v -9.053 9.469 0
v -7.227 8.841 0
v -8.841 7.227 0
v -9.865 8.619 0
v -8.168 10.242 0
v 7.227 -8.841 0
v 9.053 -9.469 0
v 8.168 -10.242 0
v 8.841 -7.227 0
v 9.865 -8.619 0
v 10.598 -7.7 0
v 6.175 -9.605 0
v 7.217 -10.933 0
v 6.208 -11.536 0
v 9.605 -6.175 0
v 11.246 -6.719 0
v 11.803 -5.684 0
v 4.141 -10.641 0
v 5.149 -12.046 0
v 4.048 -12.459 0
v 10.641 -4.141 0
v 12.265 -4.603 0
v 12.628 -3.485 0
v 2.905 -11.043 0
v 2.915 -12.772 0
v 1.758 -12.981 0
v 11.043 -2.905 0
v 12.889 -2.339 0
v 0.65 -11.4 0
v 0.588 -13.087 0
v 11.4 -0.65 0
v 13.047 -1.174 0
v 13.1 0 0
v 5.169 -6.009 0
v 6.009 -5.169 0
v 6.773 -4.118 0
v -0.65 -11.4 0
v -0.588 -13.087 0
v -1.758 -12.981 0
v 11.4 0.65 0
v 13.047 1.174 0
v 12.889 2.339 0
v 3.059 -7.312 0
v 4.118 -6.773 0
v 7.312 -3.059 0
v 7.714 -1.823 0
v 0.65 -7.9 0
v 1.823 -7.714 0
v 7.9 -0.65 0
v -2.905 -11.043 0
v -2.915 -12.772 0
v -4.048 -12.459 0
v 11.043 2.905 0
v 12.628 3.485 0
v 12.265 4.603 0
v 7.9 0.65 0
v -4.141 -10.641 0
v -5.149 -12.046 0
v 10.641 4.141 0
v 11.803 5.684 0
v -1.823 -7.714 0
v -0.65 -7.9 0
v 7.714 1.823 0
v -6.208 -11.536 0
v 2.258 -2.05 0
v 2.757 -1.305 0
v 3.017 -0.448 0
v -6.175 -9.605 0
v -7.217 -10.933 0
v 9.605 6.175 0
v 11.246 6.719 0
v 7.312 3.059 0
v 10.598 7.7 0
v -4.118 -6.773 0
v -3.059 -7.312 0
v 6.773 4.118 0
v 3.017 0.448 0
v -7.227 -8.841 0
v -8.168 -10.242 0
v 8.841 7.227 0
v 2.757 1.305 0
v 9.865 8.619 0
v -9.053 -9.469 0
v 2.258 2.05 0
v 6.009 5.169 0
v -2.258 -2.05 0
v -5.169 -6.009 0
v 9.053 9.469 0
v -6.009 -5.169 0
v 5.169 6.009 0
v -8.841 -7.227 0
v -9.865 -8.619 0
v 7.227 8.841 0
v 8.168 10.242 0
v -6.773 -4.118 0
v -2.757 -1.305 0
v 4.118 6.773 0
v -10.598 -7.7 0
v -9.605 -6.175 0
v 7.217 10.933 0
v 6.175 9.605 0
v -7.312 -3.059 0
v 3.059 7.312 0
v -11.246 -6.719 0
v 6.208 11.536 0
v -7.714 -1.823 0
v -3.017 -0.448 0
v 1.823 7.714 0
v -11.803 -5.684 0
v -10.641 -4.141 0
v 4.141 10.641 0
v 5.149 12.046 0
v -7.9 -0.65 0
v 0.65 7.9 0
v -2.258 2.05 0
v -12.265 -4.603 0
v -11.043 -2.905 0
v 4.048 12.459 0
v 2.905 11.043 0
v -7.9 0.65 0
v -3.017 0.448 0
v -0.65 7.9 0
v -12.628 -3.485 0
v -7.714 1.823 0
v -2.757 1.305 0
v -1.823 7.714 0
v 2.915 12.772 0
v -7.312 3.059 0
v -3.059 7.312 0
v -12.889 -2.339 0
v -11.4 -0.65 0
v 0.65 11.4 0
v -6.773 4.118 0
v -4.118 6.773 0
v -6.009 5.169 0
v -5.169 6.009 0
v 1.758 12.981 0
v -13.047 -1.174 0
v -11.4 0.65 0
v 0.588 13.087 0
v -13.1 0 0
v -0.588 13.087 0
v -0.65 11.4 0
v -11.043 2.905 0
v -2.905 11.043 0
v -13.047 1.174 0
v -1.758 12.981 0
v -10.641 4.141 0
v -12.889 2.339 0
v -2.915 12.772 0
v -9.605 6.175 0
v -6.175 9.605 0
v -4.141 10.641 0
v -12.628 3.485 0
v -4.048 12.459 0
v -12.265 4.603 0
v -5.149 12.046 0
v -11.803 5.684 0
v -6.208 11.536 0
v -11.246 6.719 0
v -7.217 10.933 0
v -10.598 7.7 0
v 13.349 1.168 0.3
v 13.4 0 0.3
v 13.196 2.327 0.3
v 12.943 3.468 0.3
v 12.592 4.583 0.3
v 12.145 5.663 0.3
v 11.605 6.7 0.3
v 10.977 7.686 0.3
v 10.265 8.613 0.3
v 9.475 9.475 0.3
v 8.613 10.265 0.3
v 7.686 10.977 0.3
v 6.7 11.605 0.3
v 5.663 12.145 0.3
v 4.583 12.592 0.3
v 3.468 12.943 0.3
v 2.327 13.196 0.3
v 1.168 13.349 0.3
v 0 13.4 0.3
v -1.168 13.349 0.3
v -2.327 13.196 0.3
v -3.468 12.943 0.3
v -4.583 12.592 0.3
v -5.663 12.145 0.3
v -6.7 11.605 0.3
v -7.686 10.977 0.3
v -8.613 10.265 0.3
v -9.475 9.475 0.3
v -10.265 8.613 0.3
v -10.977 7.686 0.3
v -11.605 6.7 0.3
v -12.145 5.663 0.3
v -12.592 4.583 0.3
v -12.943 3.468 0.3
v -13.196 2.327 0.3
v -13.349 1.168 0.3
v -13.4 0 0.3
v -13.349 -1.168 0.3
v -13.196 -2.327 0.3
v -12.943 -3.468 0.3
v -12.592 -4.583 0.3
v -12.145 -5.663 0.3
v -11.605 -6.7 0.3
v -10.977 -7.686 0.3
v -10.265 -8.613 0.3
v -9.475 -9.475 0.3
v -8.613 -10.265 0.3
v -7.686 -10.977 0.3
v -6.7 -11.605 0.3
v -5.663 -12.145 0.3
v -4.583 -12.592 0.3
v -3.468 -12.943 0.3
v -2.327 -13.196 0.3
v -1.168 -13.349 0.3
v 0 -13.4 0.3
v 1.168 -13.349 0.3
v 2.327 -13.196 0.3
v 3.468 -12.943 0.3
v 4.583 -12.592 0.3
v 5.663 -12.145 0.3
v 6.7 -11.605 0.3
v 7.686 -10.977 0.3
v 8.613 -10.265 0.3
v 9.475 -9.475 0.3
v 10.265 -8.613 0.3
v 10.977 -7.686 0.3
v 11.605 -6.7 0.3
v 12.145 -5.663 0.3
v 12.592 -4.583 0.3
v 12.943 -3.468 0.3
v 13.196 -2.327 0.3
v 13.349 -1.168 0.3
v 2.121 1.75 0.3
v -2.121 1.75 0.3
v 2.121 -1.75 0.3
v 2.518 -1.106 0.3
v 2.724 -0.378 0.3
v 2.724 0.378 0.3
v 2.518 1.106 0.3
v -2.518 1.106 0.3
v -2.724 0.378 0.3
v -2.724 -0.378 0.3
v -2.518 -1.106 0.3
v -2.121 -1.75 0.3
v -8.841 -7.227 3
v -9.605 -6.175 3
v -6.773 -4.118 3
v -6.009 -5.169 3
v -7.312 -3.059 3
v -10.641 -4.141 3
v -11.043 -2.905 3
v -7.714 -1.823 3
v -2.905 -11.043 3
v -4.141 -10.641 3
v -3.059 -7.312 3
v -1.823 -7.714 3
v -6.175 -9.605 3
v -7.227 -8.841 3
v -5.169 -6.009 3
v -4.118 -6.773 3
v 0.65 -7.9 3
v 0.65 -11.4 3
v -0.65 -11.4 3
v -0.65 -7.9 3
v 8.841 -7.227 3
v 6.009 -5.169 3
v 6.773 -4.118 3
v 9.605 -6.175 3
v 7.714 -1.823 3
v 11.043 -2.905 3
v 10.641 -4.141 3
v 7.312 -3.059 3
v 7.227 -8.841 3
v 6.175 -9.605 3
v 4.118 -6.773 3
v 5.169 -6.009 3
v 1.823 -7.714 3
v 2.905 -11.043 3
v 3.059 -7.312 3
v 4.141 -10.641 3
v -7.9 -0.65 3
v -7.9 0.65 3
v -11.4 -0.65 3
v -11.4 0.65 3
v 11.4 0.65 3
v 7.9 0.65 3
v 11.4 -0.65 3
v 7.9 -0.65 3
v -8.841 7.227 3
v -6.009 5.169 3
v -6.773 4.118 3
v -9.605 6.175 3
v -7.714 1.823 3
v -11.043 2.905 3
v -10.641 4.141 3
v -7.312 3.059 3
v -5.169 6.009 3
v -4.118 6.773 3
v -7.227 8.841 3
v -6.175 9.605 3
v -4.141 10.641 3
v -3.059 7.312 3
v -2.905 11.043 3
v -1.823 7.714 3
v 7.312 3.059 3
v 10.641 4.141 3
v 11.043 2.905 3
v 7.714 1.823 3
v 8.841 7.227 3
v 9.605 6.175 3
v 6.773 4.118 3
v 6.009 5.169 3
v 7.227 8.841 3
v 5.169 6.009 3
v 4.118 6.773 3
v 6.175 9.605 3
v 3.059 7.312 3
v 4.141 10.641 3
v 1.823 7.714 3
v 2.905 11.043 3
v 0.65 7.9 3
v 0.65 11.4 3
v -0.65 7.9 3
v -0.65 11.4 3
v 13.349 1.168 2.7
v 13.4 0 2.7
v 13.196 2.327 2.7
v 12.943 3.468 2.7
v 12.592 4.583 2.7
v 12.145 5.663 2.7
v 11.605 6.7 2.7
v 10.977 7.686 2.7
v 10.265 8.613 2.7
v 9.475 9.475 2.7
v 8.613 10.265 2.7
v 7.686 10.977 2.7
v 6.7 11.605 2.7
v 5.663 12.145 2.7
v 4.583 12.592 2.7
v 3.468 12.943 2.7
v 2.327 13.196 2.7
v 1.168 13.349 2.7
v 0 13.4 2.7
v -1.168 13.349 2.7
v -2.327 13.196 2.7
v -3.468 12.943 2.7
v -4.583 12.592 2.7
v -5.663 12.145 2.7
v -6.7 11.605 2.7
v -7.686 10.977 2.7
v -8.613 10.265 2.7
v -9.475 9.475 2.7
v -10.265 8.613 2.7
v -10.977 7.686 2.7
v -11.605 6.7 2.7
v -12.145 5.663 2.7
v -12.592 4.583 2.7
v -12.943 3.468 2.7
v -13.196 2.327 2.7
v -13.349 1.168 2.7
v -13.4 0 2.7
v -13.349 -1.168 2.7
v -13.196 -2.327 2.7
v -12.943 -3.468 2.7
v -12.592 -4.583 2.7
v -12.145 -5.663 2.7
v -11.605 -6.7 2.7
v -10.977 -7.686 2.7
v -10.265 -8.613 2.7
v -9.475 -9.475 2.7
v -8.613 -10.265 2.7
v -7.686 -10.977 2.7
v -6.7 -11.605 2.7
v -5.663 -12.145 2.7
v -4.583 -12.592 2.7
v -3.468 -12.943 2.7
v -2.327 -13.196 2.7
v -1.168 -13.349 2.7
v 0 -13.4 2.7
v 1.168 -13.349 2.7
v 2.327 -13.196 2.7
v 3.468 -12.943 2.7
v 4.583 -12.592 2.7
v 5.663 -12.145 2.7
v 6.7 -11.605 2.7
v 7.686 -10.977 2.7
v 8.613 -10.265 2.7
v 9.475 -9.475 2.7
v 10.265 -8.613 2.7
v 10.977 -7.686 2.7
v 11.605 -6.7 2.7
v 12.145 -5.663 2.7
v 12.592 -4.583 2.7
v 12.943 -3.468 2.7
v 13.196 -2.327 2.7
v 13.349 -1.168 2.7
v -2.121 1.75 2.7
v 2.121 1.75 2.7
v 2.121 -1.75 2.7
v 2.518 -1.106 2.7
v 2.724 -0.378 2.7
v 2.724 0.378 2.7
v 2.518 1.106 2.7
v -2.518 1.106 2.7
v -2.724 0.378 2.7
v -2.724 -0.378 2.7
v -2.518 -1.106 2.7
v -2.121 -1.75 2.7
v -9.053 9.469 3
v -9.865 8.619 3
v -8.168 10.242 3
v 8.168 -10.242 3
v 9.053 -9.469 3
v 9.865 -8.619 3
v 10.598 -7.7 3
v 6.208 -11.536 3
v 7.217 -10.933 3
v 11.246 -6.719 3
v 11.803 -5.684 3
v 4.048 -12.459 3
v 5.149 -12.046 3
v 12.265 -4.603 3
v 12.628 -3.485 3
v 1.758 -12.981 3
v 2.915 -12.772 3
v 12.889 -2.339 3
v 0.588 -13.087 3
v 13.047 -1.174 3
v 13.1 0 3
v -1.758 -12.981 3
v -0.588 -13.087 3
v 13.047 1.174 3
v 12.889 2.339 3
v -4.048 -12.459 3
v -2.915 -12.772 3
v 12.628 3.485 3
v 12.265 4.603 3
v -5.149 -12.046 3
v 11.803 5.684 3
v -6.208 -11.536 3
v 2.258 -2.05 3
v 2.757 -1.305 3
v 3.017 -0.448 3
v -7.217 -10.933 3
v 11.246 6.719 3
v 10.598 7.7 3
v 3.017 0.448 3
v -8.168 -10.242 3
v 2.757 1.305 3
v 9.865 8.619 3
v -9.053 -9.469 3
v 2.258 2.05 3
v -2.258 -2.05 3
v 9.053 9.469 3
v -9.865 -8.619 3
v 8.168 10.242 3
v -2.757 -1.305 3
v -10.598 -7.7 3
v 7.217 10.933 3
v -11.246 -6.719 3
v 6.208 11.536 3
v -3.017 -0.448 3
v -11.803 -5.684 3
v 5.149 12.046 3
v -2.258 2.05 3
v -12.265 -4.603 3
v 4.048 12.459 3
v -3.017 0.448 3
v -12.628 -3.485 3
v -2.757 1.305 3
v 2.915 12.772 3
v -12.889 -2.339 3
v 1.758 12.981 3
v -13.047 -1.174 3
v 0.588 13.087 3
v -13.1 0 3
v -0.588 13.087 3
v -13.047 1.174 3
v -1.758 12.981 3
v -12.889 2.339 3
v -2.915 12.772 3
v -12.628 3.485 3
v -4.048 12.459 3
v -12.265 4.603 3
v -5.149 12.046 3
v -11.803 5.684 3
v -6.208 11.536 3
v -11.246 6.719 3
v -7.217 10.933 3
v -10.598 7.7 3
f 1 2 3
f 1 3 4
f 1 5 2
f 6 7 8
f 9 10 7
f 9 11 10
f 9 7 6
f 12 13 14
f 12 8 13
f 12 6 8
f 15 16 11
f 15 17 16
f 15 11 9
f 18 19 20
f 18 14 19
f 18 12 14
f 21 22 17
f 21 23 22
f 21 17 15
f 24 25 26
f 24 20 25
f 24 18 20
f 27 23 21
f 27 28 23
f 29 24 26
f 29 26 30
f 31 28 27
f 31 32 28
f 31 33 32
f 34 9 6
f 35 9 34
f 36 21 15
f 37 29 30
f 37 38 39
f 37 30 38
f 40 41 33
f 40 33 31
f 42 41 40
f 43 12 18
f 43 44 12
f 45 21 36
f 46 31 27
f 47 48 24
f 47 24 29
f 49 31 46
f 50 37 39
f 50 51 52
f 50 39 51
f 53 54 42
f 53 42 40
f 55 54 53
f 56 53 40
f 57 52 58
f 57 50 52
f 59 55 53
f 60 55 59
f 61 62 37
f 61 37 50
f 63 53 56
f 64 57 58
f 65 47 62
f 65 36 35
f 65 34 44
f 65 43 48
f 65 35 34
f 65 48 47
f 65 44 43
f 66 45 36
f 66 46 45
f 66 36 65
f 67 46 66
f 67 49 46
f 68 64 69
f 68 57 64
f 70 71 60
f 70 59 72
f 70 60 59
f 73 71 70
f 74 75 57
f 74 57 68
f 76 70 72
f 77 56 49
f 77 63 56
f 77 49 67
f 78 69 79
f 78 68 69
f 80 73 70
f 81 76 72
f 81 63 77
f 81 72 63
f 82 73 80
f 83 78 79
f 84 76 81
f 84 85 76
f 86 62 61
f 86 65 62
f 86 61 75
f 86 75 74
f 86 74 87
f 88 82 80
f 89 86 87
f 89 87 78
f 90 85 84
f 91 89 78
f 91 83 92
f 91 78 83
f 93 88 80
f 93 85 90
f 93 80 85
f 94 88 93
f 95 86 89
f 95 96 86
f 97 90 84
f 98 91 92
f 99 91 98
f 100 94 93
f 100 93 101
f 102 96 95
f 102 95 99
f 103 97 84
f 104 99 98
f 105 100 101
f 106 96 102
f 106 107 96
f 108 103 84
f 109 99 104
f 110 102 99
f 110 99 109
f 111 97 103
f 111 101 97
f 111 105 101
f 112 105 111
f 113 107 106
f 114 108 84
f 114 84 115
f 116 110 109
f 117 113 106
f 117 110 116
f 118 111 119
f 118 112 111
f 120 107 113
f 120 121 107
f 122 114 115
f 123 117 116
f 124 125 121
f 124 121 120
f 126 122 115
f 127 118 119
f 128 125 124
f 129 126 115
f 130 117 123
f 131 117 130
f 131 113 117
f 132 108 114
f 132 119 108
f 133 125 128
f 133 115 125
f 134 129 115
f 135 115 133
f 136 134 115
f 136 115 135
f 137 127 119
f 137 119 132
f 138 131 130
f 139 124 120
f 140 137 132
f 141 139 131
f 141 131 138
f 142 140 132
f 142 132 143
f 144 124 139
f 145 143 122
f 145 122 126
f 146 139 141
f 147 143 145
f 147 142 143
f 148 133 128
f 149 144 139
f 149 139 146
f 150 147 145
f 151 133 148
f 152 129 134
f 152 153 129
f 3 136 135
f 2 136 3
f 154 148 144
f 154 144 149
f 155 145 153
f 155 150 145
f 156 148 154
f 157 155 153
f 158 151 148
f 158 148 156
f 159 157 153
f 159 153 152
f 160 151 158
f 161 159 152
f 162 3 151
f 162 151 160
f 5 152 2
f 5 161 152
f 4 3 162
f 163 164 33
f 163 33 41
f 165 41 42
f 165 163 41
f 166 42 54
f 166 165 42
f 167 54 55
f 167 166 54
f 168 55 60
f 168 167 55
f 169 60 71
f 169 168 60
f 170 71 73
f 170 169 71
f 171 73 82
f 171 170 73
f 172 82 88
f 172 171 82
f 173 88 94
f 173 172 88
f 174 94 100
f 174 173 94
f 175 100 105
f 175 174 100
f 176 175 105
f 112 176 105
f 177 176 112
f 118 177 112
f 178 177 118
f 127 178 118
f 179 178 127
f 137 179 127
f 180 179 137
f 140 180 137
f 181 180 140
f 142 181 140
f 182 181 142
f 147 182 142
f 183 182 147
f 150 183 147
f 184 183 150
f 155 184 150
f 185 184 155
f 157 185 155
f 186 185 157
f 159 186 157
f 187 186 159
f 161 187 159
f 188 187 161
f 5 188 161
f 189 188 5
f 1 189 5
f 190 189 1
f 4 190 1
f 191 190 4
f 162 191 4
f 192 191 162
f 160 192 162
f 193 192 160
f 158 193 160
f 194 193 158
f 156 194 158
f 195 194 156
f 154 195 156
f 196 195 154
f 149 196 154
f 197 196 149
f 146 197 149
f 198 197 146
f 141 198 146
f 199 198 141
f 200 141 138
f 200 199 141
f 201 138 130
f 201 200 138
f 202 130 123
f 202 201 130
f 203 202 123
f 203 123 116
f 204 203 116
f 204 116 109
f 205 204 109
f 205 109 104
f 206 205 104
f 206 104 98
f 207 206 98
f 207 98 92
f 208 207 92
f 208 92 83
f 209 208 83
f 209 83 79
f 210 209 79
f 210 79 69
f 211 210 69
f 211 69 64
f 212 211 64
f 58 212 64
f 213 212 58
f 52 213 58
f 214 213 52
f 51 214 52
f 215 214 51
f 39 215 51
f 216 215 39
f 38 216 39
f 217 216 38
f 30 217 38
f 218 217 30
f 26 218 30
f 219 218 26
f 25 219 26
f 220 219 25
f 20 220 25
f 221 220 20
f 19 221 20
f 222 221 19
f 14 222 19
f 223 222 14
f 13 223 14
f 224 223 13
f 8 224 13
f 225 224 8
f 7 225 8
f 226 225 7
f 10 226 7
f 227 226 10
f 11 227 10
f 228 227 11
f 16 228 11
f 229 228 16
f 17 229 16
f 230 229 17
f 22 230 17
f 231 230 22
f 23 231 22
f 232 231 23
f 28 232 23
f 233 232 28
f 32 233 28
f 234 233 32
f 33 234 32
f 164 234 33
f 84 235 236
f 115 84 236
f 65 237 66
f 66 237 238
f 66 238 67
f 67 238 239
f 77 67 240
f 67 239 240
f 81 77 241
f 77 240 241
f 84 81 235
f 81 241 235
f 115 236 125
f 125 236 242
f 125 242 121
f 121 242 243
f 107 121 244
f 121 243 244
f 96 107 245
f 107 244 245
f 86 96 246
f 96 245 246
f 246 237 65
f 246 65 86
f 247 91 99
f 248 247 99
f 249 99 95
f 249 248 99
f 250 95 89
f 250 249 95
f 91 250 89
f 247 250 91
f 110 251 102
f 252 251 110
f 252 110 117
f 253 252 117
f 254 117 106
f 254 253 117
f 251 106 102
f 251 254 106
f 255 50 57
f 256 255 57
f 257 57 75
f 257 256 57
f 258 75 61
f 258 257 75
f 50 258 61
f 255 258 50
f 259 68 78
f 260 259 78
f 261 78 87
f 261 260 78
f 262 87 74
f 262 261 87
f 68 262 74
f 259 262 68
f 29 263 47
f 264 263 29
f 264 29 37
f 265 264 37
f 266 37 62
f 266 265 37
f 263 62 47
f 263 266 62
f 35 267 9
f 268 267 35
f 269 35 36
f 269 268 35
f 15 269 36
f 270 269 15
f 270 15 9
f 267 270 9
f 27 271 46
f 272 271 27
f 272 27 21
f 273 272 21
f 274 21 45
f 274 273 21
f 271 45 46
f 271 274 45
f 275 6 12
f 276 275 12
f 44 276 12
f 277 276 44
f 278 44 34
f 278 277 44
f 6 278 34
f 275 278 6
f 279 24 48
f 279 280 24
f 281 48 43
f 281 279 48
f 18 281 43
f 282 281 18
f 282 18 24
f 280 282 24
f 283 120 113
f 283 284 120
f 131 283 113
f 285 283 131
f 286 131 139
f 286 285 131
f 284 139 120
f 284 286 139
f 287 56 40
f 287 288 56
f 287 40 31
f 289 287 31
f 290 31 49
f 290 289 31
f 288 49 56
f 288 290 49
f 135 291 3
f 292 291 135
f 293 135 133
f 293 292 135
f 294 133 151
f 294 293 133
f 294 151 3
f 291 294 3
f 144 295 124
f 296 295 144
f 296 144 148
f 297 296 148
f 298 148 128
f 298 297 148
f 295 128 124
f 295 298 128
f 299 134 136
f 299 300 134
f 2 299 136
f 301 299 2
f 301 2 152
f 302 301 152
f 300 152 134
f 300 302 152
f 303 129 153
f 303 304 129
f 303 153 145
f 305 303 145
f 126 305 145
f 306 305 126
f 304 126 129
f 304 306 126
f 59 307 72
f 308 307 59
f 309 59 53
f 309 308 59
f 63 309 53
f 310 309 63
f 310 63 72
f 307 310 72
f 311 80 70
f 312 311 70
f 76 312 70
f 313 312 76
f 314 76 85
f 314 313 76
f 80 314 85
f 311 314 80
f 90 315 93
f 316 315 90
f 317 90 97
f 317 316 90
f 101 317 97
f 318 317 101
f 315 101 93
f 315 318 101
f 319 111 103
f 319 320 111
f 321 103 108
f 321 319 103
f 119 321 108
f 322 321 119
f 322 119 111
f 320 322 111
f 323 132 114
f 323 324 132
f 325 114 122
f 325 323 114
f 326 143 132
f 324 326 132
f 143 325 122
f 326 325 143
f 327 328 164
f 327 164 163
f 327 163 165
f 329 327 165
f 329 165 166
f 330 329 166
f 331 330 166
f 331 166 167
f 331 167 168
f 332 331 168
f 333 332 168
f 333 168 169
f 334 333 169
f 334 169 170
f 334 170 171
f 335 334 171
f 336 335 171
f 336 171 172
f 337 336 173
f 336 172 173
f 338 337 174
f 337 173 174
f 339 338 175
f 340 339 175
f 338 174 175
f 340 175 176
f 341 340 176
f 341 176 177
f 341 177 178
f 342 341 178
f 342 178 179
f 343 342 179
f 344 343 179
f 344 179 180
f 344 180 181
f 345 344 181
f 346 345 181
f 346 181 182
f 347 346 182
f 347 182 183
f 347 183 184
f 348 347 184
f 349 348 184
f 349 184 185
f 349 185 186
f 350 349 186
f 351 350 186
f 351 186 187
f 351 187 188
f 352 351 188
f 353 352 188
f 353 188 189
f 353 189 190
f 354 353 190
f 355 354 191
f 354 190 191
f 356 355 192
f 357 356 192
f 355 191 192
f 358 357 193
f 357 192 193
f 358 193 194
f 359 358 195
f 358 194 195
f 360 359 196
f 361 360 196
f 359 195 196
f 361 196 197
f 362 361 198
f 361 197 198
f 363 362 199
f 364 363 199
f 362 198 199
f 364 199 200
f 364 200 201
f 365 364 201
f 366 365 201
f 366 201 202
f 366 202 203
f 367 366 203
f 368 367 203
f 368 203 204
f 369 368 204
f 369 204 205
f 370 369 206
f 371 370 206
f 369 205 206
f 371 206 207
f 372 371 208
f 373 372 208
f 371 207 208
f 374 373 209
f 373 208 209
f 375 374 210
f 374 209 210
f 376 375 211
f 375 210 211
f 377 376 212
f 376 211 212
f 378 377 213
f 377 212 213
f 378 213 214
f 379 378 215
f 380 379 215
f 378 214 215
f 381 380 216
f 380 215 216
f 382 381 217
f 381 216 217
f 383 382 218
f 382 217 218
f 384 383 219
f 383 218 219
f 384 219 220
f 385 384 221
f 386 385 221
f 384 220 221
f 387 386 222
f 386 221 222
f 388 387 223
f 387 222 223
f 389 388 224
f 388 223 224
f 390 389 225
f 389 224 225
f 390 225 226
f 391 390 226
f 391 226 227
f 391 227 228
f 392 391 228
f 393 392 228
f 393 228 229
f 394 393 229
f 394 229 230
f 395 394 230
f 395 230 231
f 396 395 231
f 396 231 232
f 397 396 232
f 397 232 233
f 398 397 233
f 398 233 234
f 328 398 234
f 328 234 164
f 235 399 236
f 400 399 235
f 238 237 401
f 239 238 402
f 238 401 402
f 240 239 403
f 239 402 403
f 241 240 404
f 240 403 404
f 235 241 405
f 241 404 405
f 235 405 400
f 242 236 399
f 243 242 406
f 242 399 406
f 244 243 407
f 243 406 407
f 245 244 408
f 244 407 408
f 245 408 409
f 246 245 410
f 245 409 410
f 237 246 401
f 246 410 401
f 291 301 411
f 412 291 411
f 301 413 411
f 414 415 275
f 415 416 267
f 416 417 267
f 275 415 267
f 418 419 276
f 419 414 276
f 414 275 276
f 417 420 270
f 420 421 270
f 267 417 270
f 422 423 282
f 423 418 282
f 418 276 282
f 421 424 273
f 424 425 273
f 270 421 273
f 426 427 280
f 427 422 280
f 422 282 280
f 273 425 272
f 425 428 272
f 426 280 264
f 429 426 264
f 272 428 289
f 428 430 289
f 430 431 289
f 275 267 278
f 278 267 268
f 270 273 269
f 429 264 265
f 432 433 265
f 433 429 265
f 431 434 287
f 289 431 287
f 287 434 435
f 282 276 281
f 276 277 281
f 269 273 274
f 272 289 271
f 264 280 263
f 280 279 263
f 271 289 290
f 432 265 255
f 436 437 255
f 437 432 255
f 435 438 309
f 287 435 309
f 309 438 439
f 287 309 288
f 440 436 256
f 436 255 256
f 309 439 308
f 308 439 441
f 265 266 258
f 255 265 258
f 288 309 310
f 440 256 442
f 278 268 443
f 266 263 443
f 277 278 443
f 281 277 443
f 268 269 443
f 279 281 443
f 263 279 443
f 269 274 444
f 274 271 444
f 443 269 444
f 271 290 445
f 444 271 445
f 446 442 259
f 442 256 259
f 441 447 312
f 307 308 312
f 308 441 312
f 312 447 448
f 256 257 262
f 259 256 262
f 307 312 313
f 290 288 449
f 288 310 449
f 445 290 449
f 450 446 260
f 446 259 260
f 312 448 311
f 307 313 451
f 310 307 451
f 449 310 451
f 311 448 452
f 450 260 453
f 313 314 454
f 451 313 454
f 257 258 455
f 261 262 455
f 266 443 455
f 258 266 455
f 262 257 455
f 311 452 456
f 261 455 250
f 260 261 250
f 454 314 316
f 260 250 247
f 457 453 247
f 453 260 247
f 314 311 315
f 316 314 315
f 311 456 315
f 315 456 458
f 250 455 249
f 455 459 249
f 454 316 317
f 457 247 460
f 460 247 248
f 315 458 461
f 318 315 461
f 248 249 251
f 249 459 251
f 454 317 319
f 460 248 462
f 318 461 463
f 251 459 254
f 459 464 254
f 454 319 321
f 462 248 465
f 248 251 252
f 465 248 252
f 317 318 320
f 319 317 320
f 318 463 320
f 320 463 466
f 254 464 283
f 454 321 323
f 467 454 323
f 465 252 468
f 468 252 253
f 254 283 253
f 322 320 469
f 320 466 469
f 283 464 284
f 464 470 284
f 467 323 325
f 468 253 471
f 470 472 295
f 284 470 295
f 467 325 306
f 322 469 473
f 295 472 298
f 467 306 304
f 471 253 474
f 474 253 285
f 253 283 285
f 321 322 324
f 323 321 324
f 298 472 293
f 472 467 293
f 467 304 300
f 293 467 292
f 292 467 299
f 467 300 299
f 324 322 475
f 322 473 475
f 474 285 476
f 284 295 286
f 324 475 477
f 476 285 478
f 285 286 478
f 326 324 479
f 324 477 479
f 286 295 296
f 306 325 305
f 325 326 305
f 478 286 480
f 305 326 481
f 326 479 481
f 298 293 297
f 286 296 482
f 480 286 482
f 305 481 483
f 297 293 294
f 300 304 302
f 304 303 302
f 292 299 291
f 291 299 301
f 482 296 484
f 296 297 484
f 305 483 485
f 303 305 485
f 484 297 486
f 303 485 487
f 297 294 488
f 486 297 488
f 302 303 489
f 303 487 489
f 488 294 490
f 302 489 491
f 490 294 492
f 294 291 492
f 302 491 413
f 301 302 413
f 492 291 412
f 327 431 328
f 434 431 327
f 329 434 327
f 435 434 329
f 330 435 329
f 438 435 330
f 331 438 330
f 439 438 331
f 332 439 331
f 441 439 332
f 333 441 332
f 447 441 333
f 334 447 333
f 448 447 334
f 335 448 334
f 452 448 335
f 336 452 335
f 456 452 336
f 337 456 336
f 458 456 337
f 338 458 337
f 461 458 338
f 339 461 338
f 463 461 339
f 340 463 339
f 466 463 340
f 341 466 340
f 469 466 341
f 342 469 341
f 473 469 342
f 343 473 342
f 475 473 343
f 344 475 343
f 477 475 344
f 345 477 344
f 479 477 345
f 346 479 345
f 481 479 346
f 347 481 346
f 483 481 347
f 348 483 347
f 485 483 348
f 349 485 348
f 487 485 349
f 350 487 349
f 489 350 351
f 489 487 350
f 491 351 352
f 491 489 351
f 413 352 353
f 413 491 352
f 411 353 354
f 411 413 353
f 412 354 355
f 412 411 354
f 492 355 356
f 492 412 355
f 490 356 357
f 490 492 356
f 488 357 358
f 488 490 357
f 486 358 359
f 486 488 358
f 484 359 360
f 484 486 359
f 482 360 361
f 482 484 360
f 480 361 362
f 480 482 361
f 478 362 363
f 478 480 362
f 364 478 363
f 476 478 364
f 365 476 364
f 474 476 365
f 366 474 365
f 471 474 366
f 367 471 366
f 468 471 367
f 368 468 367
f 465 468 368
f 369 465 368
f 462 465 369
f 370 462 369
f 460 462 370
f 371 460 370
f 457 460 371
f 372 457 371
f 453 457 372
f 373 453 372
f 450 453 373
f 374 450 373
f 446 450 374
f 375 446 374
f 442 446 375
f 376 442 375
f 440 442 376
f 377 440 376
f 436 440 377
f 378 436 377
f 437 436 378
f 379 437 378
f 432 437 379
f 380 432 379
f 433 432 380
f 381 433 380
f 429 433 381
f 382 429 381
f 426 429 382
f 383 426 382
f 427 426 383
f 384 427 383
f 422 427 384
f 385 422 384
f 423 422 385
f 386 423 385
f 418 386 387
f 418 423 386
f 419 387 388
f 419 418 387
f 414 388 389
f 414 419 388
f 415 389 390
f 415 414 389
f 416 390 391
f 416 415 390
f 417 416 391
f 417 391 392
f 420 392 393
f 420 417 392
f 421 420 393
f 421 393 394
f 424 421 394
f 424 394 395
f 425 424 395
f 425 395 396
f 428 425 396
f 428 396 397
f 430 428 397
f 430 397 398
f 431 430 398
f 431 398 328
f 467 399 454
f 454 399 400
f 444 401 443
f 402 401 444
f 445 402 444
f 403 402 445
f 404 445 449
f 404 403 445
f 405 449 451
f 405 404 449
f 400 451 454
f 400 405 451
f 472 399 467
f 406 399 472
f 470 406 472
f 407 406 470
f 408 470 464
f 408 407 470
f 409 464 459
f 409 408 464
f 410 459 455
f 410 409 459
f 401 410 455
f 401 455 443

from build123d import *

# Parameters (mm, degrees)
SKETCH002_R        = 13.4
PAD_DEPTH          = 3
POCKET_DEPTH       = 3.001
SKETCH003_W        = 1.3
SKETCH003_H        = 3.5
POCKET001_DEPTH    = 79.039937
POLARPATTERN_COUNT = 20
CHAMFER_SIZE       = 0.3
CHAMFER001_SIZE    = 0.3


with BuildPart() as part:
    # Sketch002 → Pad (new body)
    with BuildSketch(Plane.XY):
        Circle(SKETCH002_R)
    extrude(amount=PAD_DEPTH)

    # Sketch → Pocket (cut, through all)
    with BuildSketch(Plane.XY.offset(3)):
        with BuildLine():
            Line((-2.12132, 1.75), (2.12132, 1.75))
            ThreePointArc((2.12132, -1.75), (2.75, 0), (2.12132, 1.75))
            Line((-2.12132, -1.75), (2.12132, -1.75))
            ThreePointArc((-2.12132, 1.75), (-2.75, 0), (-2.12132, -1.75))
        make_face()
    extrude(amount=-POCKET_DEPTH, mode=Mode.SUBTRACT)

    # Sketch003 → Pocket001 (cut, through all)
    with BuildSketch(Plane.XY.offset(3)):
        with Locations((0, 9.65)):
            Rectangle(SKETCH003_W, SKETCH003_H)
    pocket001 = extrude(amount=-POCKET001_DEPTH, mode=Mode.SUBTRACT)

    # PolarPattern: Pocket001 ×20 about axis
    polarpattern_axis = Axis((0, 0, 3), (0, 0, 1))
    for i in range(1, POLARPATTERN_COUNT):
        add(pocket001.rotate(polarpattern_axis, i * 360 / POLARPATTERN_COUNT), mode=Mode.SUBTRACT)

    # Chamfer
    chamfer_edges = [part.edges().sort_by_distance(p)[0] for p in [
        (0, 1.75, 0),
        (2.75, 0, 0),
        (0, -1.75, 0),
        (-2.75, 0, 0),
        (2.75, 0, 3),
        (0, 1.75, 3),
        (-2.75, 0, 3),
        (0, -1.75, 3),
    ]]
    chamfer(chamfer_edges, length=CHAMFER_SIZE)

    # Chamfer001
    chamfer001_edges = [part.edges().sort_by_distance(p)[0] for p in [
        (-13.4, 0, 0),
        (-13.4, 0, 3),
    ]]
    chamfer(chamfer001_edges, length=CHAMFER001_SIZE)


solid = part.part
